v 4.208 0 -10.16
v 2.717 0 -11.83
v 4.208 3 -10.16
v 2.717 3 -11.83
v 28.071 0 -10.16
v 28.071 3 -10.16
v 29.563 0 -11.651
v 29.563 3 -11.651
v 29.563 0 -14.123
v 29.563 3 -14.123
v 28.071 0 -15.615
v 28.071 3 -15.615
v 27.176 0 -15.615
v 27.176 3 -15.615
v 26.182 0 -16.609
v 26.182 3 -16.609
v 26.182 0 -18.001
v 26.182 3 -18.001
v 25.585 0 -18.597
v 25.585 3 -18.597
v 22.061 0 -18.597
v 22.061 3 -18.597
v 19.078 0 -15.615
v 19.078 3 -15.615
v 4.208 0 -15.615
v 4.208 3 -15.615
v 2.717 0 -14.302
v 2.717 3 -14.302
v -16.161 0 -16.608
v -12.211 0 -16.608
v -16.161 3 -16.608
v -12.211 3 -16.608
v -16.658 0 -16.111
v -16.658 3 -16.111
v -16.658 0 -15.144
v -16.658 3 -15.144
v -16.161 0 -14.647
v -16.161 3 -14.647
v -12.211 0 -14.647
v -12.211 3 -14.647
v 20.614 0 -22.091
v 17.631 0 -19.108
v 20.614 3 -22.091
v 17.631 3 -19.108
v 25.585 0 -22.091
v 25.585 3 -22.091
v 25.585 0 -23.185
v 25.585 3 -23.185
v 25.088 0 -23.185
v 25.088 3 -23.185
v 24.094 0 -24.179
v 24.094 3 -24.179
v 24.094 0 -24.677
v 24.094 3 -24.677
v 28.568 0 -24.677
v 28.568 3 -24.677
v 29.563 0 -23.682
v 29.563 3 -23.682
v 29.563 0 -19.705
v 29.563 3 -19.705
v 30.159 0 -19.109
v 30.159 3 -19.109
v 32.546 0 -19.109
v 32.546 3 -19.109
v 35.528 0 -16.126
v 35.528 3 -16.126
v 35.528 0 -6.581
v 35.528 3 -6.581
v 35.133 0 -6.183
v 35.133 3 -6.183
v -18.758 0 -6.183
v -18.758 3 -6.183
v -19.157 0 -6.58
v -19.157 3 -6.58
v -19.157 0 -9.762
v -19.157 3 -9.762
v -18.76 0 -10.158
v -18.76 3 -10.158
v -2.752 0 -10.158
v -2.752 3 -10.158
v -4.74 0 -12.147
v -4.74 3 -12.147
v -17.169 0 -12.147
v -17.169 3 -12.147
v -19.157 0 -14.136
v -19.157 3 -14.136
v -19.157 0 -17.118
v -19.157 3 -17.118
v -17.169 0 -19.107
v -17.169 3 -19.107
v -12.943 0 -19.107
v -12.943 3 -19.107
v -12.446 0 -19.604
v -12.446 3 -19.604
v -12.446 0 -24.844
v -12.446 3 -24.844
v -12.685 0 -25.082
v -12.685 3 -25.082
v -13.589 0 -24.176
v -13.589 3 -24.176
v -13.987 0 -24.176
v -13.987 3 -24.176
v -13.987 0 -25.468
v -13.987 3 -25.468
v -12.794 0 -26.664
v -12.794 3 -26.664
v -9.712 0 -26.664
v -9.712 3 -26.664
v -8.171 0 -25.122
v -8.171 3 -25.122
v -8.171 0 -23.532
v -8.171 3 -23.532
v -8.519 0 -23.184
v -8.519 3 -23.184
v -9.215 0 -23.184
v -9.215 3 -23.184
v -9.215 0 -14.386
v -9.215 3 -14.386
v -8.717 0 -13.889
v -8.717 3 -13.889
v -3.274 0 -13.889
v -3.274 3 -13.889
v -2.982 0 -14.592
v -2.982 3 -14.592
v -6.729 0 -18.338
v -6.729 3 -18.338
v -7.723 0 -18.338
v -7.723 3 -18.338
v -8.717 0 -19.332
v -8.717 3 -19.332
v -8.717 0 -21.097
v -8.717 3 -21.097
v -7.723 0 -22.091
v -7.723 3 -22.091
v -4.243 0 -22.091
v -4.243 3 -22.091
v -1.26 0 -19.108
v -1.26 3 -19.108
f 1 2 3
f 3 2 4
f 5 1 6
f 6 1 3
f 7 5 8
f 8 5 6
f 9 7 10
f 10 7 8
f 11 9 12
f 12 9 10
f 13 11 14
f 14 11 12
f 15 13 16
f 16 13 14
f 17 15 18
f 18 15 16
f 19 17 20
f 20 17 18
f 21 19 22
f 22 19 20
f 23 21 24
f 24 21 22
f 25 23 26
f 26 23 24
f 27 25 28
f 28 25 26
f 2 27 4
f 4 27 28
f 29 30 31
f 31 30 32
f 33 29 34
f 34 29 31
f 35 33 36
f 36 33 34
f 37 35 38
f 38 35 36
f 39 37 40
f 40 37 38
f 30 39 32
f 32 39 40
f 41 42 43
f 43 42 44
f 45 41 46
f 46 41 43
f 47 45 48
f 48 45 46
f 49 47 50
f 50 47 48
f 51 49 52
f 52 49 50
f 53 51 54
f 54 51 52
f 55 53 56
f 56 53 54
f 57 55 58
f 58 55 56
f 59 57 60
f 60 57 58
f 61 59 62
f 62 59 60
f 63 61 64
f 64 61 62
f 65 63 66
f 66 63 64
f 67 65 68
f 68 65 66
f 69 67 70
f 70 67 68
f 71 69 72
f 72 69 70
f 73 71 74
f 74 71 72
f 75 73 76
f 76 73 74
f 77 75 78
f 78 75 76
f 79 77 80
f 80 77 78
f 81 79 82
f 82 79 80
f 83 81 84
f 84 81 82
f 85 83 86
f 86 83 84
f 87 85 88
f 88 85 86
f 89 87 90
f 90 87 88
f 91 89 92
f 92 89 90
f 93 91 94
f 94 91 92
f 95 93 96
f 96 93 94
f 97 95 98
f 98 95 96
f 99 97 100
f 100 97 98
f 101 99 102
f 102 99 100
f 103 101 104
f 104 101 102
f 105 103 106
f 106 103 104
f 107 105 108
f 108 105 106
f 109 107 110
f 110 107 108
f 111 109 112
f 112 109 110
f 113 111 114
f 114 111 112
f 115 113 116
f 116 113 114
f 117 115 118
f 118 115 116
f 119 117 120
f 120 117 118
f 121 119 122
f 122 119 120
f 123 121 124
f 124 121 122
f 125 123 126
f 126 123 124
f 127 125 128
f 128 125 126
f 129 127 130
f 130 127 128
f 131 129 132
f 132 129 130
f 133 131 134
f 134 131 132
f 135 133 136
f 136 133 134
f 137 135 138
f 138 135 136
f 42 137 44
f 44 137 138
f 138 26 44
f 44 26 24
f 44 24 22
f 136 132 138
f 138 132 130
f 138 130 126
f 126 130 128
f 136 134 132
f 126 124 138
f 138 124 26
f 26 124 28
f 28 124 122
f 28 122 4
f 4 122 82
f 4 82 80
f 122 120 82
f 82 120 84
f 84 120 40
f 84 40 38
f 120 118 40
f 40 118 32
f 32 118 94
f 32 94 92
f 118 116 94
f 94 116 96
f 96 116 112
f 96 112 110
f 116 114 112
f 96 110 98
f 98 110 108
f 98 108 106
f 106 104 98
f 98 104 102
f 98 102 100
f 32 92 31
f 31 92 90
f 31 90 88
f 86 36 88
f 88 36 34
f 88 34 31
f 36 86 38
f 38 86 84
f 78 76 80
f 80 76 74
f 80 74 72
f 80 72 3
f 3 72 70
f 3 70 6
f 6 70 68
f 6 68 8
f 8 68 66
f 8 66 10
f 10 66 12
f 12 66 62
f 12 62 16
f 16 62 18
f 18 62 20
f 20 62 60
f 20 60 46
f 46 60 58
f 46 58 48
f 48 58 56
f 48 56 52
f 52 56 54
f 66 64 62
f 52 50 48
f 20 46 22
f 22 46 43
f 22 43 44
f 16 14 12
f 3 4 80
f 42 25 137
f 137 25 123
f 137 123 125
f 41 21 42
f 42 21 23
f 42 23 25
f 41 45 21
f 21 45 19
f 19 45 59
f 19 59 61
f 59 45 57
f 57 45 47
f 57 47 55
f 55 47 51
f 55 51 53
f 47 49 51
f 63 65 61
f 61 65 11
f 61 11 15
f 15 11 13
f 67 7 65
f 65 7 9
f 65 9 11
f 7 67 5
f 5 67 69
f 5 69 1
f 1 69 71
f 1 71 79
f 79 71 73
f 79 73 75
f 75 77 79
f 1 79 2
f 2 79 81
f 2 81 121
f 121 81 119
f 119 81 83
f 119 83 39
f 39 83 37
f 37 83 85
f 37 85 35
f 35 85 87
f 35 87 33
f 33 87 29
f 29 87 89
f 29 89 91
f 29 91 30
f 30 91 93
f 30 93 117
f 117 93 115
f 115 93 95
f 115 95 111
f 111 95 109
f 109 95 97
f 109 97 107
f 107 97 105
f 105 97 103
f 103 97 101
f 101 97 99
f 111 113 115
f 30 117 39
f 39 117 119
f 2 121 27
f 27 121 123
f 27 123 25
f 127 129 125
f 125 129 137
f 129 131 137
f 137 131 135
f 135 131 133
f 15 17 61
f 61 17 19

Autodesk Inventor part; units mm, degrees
ref_plane "YZ Plane" through (0, 0, 0) normal (1, 0, 0) x (0, 1, 0)
ref_plane "XZ Plane" through (0, 0, 0) normal (0, 1, 0) x (-1, 0, 0)
ref_plane "XY Plane" through (0, 0, 0) normal (0, 0, 1) x (1, 0, 0)
sketch "Sketch1" plane through (0, 0, 0) normal (0, 1, 0) x (-1, 0, 0)
  line L0 (-17.6312, -19.1085) -> (1.2602, -19.1085)
  line L1 (-32.5455, -19.1086) -> (-30.1592, -19.1086)
  line L2 (-33.9375, -17.7166) -> (-32.5455, -19.1086)
  line L3 (-35.5284, -16.1257) -> (-33.9375, -17.7166)
  line L4 (2.9824, -14.5915) -> (3.2737, -13.8887)
  line L5 (-2.717, -14.3021) -> (-4.2084, -15.6146)
  line L6 (-2.717, -11.8304) -> (-4.2084, -10.16)
  line L7 (18.7576, -6.1828) -> (-35.133, -6.1828)
  line L8 (18.7597, -10.1584) -> (2.7517, -10.1584)
  line L9 (-29.5627, -14.1232) -> (-28.0713, -15.6146)
  line L10 (18.7576, -6.1828) -> (19.157, -6.5801)
  line L11 (19.157, -6.5801) -> (19.157, -9.7618)
  line L12 (19.157, -9.7618) -> (18.7597, -10.1584)
  line L13 (2.7517, -10.1584) -> (4.7402, -12.147)
  line L14 (4.7402, -12.147) -> (17.1688, -12.147)
  line L15 (17.1688, -12.147) -> (19.1574, -14.1355)
  line L16 (19.1574, -14.1355) -> (19.1574, -17.1184)
  line L17 (19.1574, -17.1184) -> (17.1688, -19.107)
  line L18 (17.1688, -19.107) -> (12.9431, -19.107)
  line L19 (12.9431, -19.107) -> (12.4459, -19.6041)
  line L20 (12.4459, -19.6041) -> (12.4459, -24.8441)
  line L21 (12.4459, -24.8441) -> (12.6845, -25.0822)
  line L22 (12.6845, -25.0822) -> (13.5894, -24.1758)
  line L23 (13.5894, -24.1758) -> (13.9871, -24.1758)
  line L24 (13.9871, -24.1758) -> (13.9871, -25.4685)
  line L25 (13.9871, -25.4685) -> (12.7939, -26.6636)
  line L26 (12.7939, -26.6636) -> (9.7117, -26.6636)
  line L27 (9.7117, -26.6636) -> (8.1705, -25.1225)
  line L28 (8.1705, -23.5316) -> (8.1705, -25.1225)
  line L29 (8.5185, -23.1836) -> (9.2145, -23.1836)
  line L30 (2.9824, -14.5915) -> (6.7288, -18.3379)
  line L31 (6.7288, -18.3379) -> (7.7231, -18.3379)
  line L32 (7.7231, -18.3379) -> (8.7174, -19.3322)
  line L33 (8.7174, -19.3322) -> (8.7174, -21.097)
  line L34 (8.7174, -21.097) -> (7.7231, -22.0913)
  line L35 (7.7231, -22.0913) -> (4.2431, -22.0913)
  line L36 (4.2431, -22.0913) -> (1.2602, -19.1085)
  line L37 (-17.6312, -19.1085) -> (-20.6141, -22.0913)
  line L38 (-20.6141, -22.0913) -> (-25.5855, -22.0913)
  line L39 (-25.5855, -22.0913) -> (-25.5855, -23.1851)
  line L40 (-25.5855, -23.1851) -> (-25.0884, -23.1851)
  line L41 (-25.0884, -23.1851) -> (-24.0941, -24.1794)
  line L42 (-24.0941, -24.1794) -> (-24.0941, -24.6766)
  line L43 (-24.0941, -24.6766) -> (-28.5683, -24.6766)
  line L44 (-28.5683, -24.6766) -> (-29.5626, -23.6823)
  line L45 (-29.5626, -23.6823) -> (-29.5626, -19.7051)
  line L46 (-29.5626, -19.7051) -> (-30.1592, -19.1086)
  line L47 (-35.5284, -16.1257) -> (-35.5284, -6.5807)
  line L48 (-35.5284, -6.5807) -> (-35.133, -6.1828)
  line L49 (-29.5627, -14.1232) -> (-29.5627, -11.6514)
  line L50 (-29.5627, -11.6514) -> (-28.0713, -10.16)
  line L51 (-28.0713, -10.16) -> (-4.2084, -10.16)
  line L52 (-2.717, -11.8304) -> (-2.717, -14.3021)
  line L53 (-4.2084, -15.6146) -> (-19.0784, -15.6146)
  line L54 (-22.0613, -18.5974) -> (-25.5855, -18.5974)
  line L55 (-26.1821, -16.6089) -> (-27.1764, -15.6146)
  line L56 (-26.1821, -18.0009) -> (-26.1821, -16.6089)
  line L57 (-27.1764, -15.6146) -> (-28.0713, -15.6146)
  line L58 (-25.5855, -18.5974) -> (-26.1821, -18.0009)
  line L59 (-19.0784, -15.6146) -> (-22.0613, -18.5974)
  line L60 (12.211, -16.6077) -> (12.211, -14.6465)
  line L61 (12.211, -14.6465) -> (16.1607, -14.6465)
  line L62 (16.1607, -14.6465) -> (16.6579, -15.1437)
  line L63 (16.6579, -15.1437) -> (16.6579, -16.1106)
  line L64 (16.6579, -16.1106) -> (16.1607, -16.6077)
  line L65 (16.1607, -16.6077) -> (12.211, -16.6077)
  line L66 (8.5185, -23.1836) -> (8.1705, -23.5316)
  line L67 (9.2145, -14.3859) -> (9.2145, -23.1836)
  line L68 (8.7174, -13.8887) -> (9.2145, -14.3859)
  line L69 (8.7174, -13.8887) -> (3.2737, -13.8887)
  point P0 (0, 0)
  point P1 (-29.5627, -12.8873)
  dimension "d2" = 9.545
  dimension "d3" = 3.9771
  dimension "d4" = 4.4743
  dimension "d6" = 4.9714
  dimension "d7" = 3.5242
  dimension "d9" = 2.9829
  dimension "d11" = 0.9943
  dimension "d12" = 0.398
  dimension "d13" = 53.8907
  dimension "d14" = 2.4718
  dimension "d15" = 1.4914
  dimension "d16" = 1.4914
  dimension "d18" = 1.392
  dimension "d19" = 0.5966
  dimension "d20" = 23.8629
  dimension "d21" = 1.4914
  dimension "d22" = 2.4718
  dimension "d23" = 14.8701
  dimension "d24" = 2.9829
  dimension "d25" = 18.8914
  dimension "d27" = 2.9829
  dimension "d28" = 2.9829
  dimension "d29" = 3.48
  dimension "d30" = 3.7464
  dimension "d31" = 0.7028
  dimension "d32" = 5.4437
  dimension "d33" = 8.7978
  dimension "d34" = 0.4971
  dimension "d35" = 1.5909
  dimension "d36" = 0.348
  dimension "d37" = 0.696
  dimension "d38" = 1.5411
  dimension "d39" = 3.0823
  dimension "d40" = 1.1931
  dimension "d41" = 1.2927
  dimension "d42" = 0.3977
  dimension "d43" = 0.9048
  dimension "d44" = 0.2386
  dimension "d45" = 5.24
  dimension "d46" = 0.4971
  dimension "d47" = 4.2257
  dimension "d48" = 1.9886
  dimension "d49" = 2.9829
  dimension "d50" = 1.9886
  dimension "d51" = 12.4286
  dimension "d52" = 1.9886
  dimension "d54" = 16.008
  dimension "d55" = 0.3973
  dimension "d56" = 3.1817
  dimension "d58" = 2.9829
  dimension "d59" = 2.9829
  dimension "d60" = 2.9829
  dimension "d61" = 0.9943
  dimension "d62" = 0.9943
  dimension "d63" = 0.9943
  dimension "d64" = 3.7463
  dimension "d66" = 1.7649
  dimension "d67" = 0.9943
  dimension "d68" = 0.9943
  dimension "d69" = 0.4971
  dimension "d75" = 0.4971
  dimension "d76" = 0.4971
  dimension "d77" = 0.4971
  dimension "d78" = 0.4971
extrude "Extrusion1" add sketch "Sketch1" along normal blind 3
properties part number "CO_1_01_dinRail"
